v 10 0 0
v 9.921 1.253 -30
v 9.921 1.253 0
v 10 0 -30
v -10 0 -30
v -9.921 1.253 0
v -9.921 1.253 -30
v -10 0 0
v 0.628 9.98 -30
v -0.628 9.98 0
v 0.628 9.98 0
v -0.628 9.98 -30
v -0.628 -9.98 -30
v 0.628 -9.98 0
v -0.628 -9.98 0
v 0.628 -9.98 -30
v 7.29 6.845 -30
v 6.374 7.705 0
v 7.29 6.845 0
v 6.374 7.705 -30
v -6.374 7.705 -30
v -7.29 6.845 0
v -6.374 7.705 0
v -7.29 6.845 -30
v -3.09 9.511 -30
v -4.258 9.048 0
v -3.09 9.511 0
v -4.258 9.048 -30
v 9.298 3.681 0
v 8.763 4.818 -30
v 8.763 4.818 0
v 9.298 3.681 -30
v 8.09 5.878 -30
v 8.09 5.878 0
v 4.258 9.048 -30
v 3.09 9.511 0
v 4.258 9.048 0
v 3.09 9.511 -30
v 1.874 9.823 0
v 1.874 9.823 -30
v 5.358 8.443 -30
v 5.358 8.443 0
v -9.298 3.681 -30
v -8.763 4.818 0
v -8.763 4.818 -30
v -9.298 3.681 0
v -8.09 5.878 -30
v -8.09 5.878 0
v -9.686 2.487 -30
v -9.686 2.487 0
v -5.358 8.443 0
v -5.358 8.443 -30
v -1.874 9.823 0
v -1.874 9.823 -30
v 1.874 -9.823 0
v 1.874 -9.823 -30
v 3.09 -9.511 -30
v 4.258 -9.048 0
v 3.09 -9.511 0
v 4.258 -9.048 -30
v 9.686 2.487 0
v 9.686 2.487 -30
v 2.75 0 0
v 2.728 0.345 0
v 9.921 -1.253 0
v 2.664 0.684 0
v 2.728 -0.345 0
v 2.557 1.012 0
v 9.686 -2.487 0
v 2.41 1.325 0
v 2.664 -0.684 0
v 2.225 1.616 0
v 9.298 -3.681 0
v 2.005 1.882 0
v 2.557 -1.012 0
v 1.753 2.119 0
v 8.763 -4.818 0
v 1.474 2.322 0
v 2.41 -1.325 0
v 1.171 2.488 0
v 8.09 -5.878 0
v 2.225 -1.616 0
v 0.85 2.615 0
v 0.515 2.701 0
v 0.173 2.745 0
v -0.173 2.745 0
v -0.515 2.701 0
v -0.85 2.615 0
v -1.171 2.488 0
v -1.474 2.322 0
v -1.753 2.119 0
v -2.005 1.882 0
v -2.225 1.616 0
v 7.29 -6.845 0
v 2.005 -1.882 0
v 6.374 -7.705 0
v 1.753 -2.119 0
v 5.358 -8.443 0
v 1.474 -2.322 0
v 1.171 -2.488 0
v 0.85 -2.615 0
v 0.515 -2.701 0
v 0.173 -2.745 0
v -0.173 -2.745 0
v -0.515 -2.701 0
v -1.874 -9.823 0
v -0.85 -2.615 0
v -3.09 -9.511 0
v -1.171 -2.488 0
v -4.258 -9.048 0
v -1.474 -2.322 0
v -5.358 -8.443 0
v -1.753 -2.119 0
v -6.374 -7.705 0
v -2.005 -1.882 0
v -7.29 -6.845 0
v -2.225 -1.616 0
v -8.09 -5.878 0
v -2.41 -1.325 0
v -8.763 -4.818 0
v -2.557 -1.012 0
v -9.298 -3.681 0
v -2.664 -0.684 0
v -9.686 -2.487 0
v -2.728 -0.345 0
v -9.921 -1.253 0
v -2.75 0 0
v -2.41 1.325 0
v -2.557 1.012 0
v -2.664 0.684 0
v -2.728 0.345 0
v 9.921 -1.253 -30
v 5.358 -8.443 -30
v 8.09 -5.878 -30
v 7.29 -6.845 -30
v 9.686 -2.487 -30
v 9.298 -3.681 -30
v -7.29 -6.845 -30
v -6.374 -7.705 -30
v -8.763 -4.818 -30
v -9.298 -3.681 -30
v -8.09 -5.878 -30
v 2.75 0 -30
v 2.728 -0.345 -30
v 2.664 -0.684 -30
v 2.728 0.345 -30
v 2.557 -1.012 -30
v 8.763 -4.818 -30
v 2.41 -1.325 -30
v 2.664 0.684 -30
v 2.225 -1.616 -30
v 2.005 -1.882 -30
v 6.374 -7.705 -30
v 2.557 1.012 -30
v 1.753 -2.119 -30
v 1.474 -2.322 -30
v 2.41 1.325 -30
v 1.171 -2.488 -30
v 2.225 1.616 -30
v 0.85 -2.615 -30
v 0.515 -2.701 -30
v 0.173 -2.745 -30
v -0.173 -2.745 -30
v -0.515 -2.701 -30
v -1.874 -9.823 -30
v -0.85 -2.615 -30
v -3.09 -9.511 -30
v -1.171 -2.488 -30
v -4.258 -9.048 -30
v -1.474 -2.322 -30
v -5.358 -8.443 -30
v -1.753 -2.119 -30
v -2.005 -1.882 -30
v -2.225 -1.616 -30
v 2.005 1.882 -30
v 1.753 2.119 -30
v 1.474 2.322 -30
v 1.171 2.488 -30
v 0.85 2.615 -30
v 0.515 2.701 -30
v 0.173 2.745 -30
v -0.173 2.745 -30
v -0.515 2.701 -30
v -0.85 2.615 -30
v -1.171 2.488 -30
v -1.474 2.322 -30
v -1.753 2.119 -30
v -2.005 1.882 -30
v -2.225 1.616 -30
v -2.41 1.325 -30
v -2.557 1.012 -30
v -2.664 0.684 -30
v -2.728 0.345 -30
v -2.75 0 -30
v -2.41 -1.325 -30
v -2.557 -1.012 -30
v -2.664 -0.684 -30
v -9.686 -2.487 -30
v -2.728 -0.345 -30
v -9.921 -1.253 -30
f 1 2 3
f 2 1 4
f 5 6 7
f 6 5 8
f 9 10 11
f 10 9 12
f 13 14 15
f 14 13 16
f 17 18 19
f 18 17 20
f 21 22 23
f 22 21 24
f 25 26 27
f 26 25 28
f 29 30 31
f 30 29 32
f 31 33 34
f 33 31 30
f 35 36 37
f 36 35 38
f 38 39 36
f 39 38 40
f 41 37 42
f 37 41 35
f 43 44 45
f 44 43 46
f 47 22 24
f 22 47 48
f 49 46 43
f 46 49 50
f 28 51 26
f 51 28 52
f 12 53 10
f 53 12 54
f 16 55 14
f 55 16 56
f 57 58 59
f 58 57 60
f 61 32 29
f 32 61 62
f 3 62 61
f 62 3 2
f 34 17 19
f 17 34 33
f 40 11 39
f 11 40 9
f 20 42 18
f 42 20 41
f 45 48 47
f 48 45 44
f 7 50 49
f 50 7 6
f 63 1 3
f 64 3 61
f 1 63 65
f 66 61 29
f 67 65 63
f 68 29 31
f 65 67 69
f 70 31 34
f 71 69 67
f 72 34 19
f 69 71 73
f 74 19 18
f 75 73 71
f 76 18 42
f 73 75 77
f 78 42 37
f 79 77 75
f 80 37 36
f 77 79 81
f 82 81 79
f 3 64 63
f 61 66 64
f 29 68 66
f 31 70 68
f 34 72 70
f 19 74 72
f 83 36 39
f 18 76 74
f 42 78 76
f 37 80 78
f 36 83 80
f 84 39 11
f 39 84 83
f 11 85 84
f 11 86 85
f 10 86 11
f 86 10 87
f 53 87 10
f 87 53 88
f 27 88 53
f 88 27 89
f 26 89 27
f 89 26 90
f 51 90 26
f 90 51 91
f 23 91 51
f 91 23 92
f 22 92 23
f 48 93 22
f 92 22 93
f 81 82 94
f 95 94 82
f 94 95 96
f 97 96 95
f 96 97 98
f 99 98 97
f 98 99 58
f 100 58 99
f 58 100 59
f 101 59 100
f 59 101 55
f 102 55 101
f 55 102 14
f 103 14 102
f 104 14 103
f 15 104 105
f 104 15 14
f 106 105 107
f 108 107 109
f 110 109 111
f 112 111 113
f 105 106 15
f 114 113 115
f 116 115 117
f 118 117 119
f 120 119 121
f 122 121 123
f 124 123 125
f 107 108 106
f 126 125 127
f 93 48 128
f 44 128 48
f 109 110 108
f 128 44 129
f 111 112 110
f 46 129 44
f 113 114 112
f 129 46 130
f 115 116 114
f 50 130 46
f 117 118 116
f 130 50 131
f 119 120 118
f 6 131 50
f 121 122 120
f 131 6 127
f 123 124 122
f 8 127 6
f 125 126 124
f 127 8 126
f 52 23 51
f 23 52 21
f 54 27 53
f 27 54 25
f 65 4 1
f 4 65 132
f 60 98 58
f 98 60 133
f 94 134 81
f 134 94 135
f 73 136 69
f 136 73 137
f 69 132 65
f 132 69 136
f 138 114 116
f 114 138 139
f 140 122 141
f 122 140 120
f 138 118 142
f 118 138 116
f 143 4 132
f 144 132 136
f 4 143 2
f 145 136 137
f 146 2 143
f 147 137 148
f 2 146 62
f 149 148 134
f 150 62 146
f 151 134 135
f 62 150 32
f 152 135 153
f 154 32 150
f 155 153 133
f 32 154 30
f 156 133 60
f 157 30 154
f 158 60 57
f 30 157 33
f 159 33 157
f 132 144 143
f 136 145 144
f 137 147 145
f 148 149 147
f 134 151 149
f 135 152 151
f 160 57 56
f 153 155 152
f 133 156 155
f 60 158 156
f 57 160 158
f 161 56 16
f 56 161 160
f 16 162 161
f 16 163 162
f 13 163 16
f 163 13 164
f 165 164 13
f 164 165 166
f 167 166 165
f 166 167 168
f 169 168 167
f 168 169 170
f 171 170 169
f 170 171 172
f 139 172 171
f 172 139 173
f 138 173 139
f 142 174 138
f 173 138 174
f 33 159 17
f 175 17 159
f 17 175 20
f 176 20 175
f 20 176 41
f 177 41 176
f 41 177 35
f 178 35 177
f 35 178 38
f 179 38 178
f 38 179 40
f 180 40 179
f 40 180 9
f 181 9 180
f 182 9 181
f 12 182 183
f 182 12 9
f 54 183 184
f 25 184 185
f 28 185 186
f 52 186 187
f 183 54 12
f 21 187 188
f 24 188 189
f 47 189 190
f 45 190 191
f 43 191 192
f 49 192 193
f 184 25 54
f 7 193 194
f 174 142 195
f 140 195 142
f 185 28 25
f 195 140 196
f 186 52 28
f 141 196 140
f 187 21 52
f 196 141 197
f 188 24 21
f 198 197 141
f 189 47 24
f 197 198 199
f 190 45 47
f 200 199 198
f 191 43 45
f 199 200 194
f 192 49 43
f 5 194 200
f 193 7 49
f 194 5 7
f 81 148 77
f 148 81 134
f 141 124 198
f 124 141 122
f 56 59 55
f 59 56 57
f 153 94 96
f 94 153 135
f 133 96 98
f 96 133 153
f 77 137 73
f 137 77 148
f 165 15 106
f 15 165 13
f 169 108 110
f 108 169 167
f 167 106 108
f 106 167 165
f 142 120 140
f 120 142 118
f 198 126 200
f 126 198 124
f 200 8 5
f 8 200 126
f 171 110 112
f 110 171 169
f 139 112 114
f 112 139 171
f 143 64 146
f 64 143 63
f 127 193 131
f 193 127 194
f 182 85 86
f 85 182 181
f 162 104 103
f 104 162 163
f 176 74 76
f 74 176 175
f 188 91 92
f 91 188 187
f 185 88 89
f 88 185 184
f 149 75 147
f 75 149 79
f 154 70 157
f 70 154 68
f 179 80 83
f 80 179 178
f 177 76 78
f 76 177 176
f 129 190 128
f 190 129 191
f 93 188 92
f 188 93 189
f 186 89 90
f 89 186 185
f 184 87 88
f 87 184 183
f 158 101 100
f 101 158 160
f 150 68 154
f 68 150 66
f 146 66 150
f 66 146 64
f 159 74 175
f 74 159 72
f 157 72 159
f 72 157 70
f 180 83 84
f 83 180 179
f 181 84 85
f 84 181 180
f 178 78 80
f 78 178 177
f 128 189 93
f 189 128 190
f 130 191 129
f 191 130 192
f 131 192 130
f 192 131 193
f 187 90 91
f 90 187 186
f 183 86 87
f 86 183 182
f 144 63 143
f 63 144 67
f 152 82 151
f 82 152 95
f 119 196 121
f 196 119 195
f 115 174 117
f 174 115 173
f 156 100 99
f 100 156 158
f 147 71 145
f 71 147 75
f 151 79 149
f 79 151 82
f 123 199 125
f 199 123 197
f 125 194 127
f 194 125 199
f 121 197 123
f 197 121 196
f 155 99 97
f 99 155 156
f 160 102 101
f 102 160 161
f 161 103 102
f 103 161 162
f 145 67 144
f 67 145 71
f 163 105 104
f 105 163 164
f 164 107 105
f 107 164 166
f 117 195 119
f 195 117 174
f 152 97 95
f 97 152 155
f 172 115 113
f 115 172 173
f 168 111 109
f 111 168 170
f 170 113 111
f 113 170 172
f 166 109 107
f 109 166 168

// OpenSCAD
$fn = 50;


difference() {
	union() {
		translate(v = [0, 0, -30.0000000000]) {
			cylinder(h = 30, r = 10.0000000000);
		}
		cylinder(h = 0, r = 13.0000000000);
	}
	union() {
		#translate(v = [0, 0, -30]) {
			cylinder(h = 30, r = 2.7500000000);
		}
	}
}
